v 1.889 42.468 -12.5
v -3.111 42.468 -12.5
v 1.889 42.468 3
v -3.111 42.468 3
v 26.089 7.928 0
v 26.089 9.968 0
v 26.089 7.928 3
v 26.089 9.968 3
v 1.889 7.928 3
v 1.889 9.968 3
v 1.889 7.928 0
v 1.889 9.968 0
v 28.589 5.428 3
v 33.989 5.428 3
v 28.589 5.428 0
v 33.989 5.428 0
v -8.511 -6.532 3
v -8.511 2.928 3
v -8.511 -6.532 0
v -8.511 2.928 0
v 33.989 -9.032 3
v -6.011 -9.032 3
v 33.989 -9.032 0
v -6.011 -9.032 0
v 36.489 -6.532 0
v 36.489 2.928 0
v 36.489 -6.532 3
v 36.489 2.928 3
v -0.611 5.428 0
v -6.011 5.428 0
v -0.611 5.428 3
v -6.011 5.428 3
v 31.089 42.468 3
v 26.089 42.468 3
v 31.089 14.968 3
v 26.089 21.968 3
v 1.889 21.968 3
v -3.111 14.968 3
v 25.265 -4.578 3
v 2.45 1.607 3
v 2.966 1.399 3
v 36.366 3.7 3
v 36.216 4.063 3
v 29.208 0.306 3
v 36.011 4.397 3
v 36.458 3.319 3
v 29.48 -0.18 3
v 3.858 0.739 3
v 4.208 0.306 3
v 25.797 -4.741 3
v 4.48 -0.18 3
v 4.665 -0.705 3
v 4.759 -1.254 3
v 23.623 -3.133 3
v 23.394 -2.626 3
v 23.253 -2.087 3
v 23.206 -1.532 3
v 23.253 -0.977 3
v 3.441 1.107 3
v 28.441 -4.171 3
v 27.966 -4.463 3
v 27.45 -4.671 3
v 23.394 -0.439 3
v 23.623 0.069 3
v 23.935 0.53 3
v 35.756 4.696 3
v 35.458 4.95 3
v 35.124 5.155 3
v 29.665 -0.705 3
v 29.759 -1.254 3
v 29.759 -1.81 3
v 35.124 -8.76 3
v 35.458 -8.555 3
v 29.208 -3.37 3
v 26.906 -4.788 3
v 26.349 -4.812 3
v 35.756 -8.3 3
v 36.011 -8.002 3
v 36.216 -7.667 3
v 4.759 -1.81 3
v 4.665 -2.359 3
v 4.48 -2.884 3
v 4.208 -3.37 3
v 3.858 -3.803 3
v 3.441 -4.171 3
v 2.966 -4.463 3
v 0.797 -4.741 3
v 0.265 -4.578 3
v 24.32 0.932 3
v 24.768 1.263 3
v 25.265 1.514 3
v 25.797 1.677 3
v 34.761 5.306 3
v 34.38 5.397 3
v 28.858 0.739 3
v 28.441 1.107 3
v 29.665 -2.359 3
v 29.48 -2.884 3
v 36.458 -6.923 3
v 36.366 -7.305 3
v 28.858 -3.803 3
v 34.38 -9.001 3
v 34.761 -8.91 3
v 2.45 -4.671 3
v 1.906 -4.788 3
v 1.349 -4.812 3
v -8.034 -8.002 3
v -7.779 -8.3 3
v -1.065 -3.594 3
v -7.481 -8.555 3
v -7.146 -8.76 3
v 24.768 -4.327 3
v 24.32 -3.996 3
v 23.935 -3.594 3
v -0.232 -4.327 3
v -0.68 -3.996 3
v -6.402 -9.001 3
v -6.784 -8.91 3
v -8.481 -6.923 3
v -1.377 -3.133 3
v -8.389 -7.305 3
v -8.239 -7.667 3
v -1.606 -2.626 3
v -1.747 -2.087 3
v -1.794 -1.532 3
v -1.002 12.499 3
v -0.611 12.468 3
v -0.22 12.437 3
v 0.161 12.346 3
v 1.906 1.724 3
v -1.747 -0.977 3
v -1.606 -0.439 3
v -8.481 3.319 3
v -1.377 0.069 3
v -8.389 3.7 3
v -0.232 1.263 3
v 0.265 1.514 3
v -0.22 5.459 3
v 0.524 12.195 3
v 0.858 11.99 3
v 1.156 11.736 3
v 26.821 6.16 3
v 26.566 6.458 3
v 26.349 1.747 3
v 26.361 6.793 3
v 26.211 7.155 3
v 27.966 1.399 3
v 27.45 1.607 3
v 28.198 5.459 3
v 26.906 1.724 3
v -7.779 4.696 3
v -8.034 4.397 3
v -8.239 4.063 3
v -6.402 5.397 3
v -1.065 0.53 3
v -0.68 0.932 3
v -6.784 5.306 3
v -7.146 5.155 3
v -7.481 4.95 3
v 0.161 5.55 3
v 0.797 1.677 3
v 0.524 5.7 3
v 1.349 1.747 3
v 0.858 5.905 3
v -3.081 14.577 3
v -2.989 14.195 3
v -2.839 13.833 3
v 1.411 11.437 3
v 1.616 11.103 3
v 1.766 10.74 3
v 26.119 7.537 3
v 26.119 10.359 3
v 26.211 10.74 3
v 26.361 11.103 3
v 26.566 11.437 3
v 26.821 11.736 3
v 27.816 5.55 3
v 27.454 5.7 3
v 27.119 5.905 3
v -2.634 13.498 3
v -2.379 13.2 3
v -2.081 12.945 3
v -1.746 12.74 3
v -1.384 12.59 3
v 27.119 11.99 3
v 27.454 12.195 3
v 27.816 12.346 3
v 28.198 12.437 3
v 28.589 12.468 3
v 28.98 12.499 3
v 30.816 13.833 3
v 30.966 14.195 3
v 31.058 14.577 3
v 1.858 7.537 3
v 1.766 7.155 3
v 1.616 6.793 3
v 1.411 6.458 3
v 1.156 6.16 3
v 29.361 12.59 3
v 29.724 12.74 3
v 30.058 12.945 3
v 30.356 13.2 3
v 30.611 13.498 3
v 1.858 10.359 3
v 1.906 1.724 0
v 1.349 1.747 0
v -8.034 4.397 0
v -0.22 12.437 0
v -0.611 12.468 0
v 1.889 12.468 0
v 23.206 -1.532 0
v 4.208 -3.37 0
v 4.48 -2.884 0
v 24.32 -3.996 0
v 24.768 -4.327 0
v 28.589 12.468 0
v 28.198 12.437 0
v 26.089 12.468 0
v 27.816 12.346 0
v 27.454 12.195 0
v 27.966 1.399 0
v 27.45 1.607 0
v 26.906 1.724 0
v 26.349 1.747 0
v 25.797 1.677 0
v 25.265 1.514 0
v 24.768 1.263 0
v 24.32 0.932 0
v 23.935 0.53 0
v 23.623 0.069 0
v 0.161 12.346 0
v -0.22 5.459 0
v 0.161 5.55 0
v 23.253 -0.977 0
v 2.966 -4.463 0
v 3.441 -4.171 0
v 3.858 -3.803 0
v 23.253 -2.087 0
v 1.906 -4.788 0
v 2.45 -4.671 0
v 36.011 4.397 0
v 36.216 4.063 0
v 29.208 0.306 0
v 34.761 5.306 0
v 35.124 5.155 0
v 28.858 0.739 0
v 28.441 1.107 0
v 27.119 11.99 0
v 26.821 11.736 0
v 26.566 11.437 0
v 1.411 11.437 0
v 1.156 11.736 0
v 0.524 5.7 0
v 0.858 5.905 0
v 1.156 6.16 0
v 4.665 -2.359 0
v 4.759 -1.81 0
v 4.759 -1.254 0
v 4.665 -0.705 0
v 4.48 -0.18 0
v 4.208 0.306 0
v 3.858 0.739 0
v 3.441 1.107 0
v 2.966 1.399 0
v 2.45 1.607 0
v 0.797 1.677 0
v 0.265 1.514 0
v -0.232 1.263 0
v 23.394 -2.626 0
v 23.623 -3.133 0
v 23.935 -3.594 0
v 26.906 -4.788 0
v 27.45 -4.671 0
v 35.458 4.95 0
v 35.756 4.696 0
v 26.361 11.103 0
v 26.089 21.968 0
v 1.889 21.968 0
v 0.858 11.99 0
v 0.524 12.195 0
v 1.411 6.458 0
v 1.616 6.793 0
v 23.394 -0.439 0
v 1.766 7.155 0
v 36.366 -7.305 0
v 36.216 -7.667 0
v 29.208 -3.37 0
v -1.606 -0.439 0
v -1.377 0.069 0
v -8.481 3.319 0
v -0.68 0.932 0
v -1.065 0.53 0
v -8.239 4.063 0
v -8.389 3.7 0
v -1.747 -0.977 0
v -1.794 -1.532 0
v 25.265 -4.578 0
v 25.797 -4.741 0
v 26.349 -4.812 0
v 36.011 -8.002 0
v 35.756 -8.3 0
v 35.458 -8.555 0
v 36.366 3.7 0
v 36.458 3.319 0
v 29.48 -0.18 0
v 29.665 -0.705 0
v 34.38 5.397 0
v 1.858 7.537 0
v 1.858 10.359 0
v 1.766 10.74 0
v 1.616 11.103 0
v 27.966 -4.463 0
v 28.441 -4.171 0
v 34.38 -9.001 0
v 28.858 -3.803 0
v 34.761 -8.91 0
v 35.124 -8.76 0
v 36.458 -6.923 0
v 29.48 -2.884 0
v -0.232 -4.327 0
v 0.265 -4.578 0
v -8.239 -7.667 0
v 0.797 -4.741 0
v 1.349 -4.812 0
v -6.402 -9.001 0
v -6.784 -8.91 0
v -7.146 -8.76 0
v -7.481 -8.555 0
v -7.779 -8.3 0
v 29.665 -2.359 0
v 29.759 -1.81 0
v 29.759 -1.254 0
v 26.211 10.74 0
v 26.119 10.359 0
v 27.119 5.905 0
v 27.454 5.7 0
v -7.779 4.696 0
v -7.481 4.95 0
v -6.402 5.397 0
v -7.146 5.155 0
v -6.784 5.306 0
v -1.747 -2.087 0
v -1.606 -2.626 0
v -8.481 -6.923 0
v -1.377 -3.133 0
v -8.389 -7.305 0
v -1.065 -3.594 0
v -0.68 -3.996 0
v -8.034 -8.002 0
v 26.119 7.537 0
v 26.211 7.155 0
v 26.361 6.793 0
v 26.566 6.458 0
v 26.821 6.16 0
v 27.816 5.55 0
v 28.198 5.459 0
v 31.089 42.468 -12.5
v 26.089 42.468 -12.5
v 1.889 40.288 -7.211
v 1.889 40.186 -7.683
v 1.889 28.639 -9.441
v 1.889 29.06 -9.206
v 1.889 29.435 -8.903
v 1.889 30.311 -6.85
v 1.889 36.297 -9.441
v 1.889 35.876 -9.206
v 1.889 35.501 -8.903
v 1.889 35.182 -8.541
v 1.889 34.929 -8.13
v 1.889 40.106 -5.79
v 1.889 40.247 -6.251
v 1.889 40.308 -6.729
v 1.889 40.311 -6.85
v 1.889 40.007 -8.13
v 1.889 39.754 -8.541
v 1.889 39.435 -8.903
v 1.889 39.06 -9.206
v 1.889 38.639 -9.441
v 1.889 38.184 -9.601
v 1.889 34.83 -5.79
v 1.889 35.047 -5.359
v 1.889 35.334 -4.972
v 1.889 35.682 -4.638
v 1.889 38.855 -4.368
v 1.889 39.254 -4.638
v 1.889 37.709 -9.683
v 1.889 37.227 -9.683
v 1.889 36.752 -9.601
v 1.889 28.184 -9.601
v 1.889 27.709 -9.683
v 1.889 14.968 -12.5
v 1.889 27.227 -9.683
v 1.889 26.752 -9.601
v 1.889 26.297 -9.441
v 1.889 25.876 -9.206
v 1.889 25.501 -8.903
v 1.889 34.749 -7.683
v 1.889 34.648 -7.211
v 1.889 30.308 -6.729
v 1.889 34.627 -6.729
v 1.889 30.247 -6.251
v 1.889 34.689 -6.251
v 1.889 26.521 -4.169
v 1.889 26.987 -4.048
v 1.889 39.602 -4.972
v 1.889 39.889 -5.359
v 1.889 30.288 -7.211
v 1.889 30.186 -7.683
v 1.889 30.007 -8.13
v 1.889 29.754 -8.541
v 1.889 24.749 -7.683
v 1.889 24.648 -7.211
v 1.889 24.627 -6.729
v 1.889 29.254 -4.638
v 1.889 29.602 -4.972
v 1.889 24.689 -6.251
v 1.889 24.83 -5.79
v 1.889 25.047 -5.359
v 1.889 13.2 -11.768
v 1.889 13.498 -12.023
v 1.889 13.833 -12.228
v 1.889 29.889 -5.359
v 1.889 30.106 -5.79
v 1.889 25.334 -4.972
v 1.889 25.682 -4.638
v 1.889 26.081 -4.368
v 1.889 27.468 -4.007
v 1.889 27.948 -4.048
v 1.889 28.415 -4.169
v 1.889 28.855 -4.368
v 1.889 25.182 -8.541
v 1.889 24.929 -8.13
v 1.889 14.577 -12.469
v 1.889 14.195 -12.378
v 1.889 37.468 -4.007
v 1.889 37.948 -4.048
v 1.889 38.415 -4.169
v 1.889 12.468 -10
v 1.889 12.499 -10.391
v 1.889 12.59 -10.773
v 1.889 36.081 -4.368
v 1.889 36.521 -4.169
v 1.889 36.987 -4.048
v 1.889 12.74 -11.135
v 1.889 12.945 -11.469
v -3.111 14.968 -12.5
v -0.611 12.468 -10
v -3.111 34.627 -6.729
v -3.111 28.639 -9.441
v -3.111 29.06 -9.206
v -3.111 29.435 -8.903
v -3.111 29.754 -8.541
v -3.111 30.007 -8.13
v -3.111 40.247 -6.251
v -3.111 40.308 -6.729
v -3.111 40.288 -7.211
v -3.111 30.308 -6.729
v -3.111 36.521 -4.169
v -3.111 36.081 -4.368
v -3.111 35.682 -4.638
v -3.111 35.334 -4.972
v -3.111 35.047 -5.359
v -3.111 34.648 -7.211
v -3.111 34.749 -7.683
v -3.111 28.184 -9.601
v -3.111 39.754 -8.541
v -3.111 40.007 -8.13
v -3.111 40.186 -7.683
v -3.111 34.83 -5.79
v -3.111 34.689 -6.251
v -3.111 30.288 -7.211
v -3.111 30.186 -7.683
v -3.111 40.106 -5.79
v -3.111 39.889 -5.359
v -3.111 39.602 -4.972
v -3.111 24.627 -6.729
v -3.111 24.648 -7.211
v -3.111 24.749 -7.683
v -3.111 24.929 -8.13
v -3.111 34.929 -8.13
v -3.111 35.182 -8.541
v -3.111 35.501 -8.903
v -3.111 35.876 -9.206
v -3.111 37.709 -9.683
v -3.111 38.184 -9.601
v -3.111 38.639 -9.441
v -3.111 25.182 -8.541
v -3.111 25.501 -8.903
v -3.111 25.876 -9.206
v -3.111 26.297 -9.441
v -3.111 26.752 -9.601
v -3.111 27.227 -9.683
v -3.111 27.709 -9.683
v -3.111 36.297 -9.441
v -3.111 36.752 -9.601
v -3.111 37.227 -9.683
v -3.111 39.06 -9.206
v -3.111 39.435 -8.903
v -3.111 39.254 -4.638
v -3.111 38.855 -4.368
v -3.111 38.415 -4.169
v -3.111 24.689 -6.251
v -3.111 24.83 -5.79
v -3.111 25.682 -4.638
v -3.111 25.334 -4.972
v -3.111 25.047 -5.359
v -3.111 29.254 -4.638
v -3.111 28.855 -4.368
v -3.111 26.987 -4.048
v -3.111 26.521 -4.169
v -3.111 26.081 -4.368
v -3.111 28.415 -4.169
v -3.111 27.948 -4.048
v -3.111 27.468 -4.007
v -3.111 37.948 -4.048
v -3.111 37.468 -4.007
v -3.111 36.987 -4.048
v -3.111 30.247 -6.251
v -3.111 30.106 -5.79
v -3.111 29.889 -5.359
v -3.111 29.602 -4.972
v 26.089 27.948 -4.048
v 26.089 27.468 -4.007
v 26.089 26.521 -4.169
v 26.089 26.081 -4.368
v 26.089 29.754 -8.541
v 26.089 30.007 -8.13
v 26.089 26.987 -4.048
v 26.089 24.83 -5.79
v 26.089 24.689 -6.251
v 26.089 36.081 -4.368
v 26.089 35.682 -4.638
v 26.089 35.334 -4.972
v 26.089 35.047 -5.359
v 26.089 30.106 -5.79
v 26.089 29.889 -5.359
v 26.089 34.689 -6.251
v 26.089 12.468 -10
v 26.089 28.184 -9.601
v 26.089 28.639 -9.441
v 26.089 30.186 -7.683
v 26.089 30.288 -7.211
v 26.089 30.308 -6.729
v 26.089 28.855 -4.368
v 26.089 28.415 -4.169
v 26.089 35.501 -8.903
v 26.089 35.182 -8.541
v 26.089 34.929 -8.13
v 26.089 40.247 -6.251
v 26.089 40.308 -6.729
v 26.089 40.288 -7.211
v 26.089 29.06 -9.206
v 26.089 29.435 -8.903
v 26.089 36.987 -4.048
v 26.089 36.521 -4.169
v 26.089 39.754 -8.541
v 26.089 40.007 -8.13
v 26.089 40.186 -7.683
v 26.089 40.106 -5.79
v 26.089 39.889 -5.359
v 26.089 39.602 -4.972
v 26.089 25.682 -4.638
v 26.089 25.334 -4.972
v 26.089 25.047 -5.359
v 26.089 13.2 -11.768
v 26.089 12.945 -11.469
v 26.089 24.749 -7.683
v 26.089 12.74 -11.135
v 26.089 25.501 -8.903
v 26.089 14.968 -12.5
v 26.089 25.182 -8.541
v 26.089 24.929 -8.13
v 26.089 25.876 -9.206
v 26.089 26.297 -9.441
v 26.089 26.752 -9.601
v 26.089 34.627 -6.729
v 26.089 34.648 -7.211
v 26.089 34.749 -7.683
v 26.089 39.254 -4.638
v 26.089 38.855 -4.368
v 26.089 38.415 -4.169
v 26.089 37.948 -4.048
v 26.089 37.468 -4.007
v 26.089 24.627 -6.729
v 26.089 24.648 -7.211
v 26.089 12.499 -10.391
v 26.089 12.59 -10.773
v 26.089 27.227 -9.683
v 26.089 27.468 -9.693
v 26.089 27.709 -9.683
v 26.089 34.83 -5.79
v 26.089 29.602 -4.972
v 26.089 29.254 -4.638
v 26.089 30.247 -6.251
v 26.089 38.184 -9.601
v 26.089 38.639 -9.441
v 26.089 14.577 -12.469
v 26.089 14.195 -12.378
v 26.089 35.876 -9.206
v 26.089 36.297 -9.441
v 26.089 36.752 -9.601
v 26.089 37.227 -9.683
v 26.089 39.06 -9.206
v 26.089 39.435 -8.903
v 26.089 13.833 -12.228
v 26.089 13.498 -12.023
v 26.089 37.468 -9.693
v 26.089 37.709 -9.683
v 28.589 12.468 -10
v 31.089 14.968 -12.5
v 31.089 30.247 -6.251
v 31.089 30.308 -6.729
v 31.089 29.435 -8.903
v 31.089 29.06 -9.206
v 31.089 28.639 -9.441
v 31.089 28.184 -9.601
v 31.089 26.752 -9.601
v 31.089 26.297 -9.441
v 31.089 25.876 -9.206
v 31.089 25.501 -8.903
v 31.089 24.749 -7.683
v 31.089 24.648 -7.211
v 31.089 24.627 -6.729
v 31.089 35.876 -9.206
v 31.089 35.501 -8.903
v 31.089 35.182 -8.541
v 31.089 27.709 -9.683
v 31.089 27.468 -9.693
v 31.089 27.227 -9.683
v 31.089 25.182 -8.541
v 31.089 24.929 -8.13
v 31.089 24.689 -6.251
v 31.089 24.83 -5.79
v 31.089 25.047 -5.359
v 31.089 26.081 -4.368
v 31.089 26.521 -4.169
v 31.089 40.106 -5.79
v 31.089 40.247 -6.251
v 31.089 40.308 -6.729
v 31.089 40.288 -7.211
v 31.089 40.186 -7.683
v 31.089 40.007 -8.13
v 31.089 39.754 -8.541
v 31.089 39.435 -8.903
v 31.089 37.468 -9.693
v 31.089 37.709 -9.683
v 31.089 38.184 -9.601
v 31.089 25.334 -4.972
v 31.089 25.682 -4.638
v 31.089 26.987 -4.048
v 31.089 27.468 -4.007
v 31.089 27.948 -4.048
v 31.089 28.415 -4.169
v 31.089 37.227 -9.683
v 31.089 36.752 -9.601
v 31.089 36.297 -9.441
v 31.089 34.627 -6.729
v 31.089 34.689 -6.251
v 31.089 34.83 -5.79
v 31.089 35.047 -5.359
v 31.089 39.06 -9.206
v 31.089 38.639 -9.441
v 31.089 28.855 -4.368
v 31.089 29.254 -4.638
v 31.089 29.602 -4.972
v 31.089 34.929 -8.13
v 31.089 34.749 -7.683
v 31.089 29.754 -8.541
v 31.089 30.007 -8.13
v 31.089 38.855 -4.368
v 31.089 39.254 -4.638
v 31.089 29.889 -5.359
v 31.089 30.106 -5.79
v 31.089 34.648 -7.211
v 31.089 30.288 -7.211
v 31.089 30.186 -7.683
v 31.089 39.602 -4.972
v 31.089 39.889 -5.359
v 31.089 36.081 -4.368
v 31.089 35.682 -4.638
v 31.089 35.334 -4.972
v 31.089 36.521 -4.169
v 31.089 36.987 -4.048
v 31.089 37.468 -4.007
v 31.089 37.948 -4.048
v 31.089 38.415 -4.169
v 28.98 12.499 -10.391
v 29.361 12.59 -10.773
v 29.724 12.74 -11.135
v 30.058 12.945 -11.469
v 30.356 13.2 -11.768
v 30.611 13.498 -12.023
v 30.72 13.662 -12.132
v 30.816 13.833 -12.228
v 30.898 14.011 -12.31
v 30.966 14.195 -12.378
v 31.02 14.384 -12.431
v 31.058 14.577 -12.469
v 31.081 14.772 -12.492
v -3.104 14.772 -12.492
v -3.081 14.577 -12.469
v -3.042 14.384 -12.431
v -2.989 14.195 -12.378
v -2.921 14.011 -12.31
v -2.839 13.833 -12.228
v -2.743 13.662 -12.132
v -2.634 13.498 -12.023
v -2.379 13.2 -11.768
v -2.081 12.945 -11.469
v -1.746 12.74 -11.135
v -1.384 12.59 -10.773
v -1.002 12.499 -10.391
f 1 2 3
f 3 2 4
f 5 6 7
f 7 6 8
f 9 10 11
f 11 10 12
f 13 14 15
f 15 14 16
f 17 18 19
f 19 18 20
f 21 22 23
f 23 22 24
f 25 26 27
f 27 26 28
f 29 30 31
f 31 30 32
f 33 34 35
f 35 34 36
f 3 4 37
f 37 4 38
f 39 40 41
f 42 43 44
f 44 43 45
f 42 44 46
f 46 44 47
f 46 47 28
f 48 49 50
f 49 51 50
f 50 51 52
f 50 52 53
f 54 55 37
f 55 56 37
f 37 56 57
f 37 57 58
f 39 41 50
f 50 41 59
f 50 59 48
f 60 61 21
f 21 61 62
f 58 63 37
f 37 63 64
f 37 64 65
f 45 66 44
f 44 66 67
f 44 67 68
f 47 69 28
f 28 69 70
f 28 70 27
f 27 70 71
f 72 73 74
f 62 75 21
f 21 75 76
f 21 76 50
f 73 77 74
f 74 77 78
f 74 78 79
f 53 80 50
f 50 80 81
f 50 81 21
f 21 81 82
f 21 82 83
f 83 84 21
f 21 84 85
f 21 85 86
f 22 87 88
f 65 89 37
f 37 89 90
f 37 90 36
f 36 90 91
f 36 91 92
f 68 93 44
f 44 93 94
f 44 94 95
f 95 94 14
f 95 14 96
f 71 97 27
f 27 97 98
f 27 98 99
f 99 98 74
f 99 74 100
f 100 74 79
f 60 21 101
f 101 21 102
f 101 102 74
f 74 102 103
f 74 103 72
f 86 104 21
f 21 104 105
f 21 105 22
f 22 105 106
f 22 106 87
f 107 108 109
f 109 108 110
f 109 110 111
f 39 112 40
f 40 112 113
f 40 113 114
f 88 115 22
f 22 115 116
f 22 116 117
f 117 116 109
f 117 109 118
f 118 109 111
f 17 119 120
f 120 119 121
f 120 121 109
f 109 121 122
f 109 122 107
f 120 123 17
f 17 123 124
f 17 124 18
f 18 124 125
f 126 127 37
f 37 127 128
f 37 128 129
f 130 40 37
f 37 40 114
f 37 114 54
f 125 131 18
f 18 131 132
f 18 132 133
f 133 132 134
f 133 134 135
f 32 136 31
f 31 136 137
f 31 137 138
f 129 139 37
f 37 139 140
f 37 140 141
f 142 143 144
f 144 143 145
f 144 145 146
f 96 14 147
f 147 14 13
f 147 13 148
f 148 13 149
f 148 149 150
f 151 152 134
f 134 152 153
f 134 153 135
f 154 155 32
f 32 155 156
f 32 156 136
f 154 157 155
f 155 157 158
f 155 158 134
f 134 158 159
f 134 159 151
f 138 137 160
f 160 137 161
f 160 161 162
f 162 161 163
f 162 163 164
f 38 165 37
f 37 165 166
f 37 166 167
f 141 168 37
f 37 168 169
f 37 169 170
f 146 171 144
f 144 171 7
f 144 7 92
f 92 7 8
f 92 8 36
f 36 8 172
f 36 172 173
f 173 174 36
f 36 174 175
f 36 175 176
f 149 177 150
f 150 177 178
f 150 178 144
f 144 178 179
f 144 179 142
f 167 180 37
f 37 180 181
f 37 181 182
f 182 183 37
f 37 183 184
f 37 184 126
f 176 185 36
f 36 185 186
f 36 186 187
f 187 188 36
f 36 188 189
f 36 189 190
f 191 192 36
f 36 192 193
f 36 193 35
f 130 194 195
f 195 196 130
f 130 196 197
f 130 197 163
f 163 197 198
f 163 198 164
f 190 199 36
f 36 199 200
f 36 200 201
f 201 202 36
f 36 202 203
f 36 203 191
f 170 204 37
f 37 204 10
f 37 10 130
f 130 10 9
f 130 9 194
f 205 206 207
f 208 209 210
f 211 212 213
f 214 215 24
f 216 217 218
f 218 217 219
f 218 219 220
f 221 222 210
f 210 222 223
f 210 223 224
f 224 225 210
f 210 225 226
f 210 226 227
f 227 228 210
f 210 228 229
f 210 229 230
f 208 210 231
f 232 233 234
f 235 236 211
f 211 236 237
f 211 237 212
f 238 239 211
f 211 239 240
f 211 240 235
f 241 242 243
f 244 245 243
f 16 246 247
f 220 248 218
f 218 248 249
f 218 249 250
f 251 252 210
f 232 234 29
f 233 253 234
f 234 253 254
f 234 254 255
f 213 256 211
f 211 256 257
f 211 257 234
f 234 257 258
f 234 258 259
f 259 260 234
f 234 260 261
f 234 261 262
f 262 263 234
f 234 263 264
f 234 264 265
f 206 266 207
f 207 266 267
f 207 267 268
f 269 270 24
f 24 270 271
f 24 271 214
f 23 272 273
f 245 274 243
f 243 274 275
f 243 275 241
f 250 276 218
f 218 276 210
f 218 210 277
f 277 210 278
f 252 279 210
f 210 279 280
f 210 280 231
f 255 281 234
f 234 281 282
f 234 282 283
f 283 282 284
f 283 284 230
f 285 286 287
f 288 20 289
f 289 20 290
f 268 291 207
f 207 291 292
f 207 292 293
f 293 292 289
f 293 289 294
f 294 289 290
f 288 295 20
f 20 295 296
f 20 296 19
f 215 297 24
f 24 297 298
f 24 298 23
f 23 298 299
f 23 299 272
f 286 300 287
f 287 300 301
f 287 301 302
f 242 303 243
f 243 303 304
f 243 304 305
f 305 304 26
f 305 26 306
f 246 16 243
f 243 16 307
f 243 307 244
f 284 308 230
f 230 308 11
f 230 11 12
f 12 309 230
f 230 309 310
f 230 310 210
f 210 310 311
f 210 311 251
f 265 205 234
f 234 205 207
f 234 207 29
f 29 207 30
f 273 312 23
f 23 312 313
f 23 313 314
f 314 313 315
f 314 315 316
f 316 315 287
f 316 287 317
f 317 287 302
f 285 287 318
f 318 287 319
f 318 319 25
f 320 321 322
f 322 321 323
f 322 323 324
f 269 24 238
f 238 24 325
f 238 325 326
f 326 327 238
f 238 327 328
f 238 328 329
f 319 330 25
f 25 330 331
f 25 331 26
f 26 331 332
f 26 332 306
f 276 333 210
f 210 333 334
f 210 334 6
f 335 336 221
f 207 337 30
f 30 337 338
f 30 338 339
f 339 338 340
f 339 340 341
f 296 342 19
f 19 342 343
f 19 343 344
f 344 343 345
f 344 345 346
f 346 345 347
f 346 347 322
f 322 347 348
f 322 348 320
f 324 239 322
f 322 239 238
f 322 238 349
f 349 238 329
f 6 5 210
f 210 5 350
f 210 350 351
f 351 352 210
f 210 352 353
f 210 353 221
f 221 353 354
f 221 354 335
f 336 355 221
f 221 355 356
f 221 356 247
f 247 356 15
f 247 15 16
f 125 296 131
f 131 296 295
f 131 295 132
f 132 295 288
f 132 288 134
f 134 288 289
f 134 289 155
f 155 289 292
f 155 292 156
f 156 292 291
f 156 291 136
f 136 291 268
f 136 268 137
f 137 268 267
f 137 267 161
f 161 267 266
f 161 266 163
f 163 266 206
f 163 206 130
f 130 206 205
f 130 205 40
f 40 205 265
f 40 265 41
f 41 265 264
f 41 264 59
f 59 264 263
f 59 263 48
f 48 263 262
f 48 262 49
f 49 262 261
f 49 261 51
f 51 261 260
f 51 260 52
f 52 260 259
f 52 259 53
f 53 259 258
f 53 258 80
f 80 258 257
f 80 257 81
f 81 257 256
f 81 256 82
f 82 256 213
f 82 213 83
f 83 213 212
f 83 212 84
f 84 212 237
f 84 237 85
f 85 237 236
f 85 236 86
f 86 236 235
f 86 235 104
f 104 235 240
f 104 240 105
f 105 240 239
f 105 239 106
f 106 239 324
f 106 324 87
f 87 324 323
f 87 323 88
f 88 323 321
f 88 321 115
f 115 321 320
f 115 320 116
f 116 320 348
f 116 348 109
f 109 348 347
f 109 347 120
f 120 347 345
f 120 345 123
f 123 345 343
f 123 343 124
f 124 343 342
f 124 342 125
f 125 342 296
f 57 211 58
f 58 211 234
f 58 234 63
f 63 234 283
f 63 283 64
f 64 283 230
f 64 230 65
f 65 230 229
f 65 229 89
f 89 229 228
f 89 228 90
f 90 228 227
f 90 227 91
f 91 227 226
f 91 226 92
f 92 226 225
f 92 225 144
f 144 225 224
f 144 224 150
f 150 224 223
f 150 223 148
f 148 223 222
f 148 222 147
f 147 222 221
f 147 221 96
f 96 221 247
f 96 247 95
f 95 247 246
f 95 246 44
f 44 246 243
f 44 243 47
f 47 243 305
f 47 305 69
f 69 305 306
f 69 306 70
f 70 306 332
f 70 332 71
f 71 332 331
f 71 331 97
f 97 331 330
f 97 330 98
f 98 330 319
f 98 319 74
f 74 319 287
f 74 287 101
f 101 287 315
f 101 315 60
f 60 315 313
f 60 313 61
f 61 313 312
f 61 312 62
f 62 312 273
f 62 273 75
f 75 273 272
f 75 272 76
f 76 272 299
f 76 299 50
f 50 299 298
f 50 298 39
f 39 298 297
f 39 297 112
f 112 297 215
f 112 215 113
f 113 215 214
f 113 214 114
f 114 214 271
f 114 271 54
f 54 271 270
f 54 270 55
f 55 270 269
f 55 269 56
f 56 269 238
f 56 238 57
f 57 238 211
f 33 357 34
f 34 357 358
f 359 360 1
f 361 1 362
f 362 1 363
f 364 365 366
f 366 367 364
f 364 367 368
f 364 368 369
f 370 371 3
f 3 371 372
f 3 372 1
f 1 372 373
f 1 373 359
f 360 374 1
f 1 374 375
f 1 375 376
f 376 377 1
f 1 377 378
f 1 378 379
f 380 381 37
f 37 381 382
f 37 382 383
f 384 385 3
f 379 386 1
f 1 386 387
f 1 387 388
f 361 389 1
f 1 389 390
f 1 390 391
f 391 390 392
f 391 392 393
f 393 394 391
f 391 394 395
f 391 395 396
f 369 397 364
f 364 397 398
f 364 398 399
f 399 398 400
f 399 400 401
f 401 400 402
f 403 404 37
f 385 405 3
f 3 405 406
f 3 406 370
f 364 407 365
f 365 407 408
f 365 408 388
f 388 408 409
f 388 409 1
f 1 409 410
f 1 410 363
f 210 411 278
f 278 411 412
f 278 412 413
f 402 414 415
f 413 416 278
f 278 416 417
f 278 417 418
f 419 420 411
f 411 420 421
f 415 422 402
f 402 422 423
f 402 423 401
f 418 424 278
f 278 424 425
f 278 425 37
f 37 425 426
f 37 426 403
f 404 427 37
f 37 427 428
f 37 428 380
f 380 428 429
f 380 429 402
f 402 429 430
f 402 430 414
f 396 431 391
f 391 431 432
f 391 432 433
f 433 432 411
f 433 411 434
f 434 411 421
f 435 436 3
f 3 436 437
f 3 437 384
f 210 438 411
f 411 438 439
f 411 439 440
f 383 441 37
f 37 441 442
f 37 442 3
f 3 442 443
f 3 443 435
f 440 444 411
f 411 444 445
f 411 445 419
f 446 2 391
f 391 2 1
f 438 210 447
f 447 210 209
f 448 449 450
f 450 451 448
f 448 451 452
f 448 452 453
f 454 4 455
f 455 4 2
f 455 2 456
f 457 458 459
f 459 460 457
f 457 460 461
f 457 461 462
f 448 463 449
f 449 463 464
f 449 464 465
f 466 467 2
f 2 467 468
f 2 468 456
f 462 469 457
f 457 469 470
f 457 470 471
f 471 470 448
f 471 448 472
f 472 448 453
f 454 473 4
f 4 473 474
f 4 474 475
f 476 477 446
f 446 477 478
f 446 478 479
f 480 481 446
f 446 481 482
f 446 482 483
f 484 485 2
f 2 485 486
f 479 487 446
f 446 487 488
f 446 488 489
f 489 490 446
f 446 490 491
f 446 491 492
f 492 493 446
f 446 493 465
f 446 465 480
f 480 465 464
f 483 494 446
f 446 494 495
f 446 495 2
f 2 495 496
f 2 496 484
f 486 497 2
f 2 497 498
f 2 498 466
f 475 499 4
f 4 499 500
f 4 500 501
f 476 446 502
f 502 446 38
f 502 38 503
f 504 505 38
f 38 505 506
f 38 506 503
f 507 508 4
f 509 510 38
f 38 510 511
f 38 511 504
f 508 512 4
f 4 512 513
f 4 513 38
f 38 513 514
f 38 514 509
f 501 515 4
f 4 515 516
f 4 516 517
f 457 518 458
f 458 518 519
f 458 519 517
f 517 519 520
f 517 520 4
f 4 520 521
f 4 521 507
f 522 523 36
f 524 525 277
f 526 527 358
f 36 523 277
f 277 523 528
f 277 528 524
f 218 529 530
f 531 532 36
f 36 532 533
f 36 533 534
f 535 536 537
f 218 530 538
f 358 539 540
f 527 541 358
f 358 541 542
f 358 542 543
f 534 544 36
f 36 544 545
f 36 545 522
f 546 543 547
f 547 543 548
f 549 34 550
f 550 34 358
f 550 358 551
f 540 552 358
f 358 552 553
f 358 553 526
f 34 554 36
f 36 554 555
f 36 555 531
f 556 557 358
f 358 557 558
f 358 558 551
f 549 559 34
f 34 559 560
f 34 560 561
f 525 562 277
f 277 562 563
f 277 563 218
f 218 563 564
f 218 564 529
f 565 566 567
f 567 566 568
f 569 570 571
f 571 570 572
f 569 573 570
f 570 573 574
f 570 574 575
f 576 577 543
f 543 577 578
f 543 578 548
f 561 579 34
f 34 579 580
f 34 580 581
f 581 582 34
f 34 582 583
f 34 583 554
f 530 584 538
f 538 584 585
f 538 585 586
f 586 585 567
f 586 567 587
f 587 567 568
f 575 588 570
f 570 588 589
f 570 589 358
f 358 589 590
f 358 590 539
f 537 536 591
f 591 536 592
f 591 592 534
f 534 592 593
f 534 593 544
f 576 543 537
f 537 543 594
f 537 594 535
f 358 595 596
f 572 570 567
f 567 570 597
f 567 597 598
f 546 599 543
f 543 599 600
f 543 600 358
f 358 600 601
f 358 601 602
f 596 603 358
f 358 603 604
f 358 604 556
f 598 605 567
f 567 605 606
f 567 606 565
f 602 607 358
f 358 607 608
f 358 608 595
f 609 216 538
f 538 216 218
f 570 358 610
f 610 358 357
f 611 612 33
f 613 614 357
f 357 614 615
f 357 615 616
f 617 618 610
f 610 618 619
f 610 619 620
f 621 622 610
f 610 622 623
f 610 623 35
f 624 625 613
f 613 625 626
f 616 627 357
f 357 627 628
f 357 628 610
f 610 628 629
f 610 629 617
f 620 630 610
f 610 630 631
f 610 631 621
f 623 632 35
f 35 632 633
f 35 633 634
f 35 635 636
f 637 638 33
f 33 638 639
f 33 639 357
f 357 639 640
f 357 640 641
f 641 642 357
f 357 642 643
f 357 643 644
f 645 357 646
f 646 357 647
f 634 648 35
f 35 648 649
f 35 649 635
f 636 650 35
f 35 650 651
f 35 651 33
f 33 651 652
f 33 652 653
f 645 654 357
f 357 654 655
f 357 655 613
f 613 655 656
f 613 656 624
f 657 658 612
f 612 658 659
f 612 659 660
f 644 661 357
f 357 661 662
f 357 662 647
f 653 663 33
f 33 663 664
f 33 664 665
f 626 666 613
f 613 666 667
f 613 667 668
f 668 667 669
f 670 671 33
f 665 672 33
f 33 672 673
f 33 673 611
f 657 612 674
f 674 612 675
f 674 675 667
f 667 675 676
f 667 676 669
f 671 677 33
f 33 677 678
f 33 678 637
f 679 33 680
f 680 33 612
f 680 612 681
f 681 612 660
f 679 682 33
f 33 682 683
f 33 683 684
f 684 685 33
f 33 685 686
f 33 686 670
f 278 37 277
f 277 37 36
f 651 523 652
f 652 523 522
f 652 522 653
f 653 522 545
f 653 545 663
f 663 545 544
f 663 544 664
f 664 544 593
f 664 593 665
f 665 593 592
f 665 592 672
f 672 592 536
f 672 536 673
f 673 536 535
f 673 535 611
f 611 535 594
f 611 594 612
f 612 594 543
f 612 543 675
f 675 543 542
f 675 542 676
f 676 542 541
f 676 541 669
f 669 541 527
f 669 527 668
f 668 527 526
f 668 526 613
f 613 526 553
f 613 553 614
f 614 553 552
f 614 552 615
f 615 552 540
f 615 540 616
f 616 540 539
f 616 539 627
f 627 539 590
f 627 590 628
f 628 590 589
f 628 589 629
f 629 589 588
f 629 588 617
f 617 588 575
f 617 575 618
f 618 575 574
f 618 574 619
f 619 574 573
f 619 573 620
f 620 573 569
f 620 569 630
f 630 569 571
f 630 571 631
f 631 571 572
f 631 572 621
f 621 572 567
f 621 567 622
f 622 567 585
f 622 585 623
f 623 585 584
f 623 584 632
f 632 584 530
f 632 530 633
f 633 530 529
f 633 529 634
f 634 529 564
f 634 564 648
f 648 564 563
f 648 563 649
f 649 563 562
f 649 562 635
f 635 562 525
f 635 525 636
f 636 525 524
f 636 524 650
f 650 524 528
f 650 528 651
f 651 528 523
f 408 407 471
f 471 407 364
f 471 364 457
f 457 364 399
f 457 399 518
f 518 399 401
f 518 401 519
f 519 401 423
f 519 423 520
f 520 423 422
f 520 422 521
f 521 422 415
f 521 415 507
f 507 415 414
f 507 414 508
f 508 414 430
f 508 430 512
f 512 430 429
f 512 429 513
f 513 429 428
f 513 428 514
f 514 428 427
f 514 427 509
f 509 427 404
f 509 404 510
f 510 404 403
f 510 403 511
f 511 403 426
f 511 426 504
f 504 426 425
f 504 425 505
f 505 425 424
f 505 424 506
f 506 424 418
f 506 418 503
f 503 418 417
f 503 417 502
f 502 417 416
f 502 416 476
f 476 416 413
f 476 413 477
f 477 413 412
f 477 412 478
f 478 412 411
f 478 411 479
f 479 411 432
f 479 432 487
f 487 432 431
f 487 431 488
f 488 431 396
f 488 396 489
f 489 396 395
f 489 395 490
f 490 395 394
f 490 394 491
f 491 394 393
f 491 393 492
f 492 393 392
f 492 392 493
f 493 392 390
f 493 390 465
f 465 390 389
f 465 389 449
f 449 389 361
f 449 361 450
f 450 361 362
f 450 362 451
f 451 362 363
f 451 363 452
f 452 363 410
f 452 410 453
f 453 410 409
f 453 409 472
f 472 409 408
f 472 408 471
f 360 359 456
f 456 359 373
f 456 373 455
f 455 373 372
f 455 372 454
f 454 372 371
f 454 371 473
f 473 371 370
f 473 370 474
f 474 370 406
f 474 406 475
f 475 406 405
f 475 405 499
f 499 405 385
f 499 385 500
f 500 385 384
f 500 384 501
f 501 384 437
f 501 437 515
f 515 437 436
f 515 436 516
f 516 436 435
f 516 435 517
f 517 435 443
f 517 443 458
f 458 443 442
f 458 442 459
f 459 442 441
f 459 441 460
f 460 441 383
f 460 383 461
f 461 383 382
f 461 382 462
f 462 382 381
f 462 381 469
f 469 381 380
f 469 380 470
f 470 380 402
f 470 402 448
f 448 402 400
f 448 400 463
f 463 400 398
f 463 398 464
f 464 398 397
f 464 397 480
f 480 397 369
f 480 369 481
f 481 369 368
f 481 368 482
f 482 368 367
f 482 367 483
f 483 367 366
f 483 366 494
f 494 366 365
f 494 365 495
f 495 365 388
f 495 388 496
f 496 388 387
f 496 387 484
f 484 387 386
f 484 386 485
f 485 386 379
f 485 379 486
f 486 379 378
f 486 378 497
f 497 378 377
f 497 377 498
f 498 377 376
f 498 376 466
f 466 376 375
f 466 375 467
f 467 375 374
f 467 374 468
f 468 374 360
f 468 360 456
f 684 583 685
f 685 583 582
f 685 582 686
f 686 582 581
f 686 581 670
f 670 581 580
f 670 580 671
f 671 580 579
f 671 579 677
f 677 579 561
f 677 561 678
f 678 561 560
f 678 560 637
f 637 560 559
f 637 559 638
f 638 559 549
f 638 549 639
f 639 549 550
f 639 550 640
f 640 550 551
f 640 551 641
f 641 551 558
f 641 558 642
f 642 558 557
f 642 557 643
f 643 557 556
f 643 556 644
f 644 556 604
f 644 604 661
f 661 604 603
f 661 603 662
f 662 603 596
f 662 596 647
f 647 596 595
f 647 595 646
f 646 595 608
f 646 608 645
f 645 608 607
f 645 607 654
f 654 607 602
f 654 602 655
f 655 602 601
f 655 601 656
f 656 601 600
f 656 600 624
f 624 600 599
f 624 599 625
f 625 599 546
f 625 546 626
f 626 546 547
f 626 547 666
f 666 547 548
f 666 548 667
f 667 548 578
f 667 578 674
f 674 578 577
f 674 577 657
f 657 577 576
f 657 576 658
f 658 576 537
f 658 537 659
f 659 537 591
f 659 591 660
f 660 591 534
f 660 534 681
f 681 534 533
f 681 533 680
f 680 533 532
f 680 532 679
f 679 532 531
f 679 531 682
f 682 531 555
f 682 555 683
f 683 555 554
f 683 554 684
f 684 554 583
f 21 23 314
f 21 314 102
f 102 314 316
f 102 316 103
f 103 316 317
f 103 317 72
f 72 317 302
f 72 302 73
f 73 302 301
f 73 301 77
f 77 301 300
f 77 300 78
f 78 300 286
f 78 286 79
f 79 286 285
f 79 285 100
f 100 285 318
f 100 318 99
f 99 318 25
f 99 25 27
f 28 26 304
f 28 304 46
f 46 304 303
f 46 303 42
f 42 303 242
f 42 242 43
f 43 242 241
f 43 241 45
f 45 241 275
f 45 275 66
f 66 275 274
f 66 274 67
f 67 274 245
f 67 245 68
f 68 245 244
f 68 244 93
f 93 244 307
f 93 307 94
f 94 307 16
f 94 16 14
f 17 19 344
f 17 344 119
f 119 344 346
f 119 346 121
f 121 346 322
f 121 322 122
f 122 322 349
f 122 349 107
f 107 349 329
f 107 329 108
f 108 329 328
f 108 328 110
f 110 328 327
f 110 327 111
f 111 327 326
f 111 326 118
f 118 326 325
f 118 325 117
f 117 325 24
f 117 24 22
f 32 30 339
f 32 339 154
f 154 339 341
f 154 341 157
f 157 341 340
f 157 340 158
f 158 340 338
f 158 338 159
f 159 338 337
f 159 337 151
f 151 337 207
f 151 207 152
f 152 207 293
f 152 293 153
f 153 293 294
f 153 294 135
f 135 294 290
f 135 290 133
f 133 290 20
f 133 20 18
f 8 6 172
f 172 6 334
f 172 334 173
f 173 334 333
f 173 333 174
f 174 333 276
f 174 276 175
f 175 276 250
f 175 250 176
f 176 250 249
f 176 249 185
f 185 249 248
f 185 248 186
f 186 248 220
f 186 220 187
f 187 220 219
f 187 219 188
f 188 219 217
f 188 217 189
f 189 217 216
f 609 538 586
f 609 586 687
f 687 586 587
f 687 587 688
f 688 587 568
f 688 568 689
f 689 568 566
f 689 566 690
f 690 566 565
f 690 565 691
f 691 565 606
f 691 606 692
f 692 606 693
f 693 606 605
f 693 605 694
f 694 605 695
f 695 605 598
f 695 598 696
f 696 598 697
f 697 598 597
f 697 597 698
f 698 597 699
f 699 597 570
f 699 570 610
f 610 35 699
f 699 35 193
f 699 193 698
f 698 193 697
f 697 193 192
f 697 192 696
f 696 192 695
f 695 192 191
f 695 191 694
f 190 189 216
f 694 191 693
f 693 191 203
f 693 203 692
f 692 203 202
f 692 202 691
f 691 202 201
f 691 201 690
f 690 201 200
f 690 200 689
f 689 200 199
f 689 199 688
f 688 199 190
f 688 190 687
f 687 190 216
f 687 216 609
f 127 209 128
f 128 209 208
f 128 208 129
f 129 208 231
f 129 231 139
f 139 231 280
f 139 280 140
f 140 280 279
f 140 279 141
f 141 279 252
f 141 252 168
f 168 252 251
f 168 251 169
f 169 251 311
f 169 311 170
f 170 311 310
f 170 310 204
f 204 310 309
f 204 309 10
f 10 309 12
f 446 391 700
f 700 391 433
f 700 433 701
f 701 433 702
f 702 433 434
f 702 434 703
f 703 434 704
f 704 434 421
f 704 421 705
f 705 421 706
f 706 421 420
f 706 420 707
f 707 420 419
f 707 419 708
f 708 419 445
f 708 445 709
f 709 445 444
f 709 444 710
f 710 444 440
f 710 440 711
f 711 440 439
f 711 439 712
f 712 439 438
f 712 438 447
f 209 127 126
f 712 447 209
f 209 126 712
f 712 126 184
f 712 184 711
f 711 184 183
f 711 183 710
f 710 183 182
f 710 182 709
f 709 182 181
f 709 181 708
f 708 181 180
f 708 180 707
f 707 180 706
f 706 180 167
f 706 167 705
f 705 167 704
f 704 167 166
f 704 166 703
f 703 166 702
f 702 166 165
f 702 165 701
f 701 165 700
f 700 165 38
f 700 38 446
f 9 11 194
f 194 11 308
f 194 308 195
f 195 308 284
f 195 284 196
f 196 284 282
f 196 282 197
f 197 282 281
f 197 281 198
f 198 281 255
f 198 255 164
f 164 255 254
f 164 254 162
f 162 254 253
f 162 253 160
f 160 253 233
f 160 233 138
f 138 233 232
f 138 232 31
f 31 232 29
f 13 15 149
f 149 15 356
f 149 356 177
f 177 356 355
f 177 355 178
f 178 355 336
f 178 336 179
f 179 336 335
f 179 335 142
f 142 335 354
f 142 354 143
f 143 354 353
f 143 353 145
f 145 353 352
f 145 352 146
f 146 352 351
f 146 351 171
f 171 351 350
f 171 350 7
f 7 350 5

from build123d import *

# Parameters (mm, degrees)
SKETCH1_W                        = 45
SKETCH1_H                        = 14.46
BOSS_EXTRUDE1_DEPTH              = 3
F_1_4_0_2584625_DIAMETER_HOLE1_D = 6.5649475
SKETCH5_W                        = 24.2
SKETCH5_H                        = 37.04
BOSS_EXTRUDE2_DEPTH              = 3
SKETCH6_W                        = 15.5
SKETCH6_H                        = 30
BOSS_EXTRUDE3_DEPTH              = 5
BOSS_EXTRUDE4_START              = -29.2
SKETCH7_W                        = 15.5
SKETCH7_H                        = 30
BOSS_EXTRUDE4_DEPTH              = 5
SKETCH12_W                       = 24.2
SKETCH12_H                       = 20.5
CUT_EXTRUDE1_DEPTH               = 3
M5_CLEARANCE_HOLE1_D             = 5.686175
FILLET3_R                        = 2.5
FILLET4_R                        = 2.5


with BuildPart() as part:
    # Sketch1 → Boss-Extrude1 (new body)
    with BuildSketch(Plane.XY):
        with Locations((13.988651535, -1.802042724)):
            Rectangle(SKETCH1_W, SKETCH1_H)
    extrude(amount=BOSS_EXTRUDE1_DEPTH)

    # 1/4 (0.2584625) Diameter Hole1 (through all)
    with Locations(Plane(origin=(0, 0, 0), x_dir=(-1, 0, 0), z_dir=(0, 0, -1))):
        with Locations((-26.488651535, -1.532042724), (-1.488651535, -1.532042724)):
            Hole(F_1_4_0_2584625_DIAMETER_HOLE1_D / 2)

    # Sketch5 → Boss-Extrude2 (add)
    with BuildSketch(Plane(origin=(0, 0, 0), x_dir=(-1, 0, 0), z_dir=(0, 0, -1))):
        with Locations((-13.988651535, 23.947957276)):
            Rectangle(SKETCH5_W, SKETCH5_H)
    extrude(amount=-BOSS_EXTRUDE2_DEPTH)

    # Sketch6 → Boss-Extrude3 (add)
    with BuildSketch(Plane.ZY.offset(-1.888651535)):
        with Locations((-4.75, 27.467957276)):
            Rectangle(SKETCH6_W, SKETCH6_H)
    extrude(amount=BOSS_EXTRUDE3_DEPTH)

    # Sketch7 → Boss-Extrude4 (add)
    with BuildSketch(Plane.ZY.offset(3.111348465).offset(BOSS_EXTRUDE4_START)):
        with Locations((-4.75, 27.467957276)):
            Rectangle(SKETCH7_W, SKETCH7_H)
    extrude(amount=-BOSS_EXTRUDE4_DEPTH)

    # Sketch12 → Cut-Extrude1 (cut)
    with BuildSketch(Plane(origin=(0, 0, 0), x_dir=(-1, 0, 0), z_dir=(0, 0, -1))):
        with Locations((-13.988651535, 32.217957276)):
            Rectangle(SKETCH12_W, SKETCH12_H)
    extrude(amount=-CUT_EXTRUDE1_DEPTH, mode=Mode.SUBTRACT)

    # M5 Clearance Hole1 (through all)
    with Locations(Plane.ZY.offset(3.111348465)):
        with Locations((-6.85, 37.467957276), (-6.85, 27.467957276)):
            Hole(M5_CLEARANCE_HOLE1_D / 2)

    # Fillet3
    fillet3_edges = [part.edges().sort_by_distance(p)[0] for p in [
        (-8.511348465, 5.427957276, 1.5),
        (36.488651535, 5.427957276, 1.5),
        (36.488651535, -9.032042724, 1.5),
        (-8.511348465, -9.032042724, 1.5),
    ]]
    fillet(fillet3_edges, radius=FILLET3_R)

    # Fillet4
    fillet4_edges = [part.edges().sort_by_distance(p)[0] for p in [
        (1.888651535, 5.427957276, 1.5),
        (26.088651535, 5.427957276, 1.5),
        (26.088651535, 12.467957276, 1.5),
        (1.888651535, 12.467957276, 1.5),
        (31.088651535, 12.467957276, -4.75),
        (-3.111348465, 12.467957276, -4.75),
        (28.588651535, 12.467957276, -12.5),
        (-0.611348465, 12.467957276, -12.5),
    ]]
    fillet(fillet4_edges, radius=FILLET4_R - 0.0001)  # a hair under: the kernel refuses the full size


solid = part.part
